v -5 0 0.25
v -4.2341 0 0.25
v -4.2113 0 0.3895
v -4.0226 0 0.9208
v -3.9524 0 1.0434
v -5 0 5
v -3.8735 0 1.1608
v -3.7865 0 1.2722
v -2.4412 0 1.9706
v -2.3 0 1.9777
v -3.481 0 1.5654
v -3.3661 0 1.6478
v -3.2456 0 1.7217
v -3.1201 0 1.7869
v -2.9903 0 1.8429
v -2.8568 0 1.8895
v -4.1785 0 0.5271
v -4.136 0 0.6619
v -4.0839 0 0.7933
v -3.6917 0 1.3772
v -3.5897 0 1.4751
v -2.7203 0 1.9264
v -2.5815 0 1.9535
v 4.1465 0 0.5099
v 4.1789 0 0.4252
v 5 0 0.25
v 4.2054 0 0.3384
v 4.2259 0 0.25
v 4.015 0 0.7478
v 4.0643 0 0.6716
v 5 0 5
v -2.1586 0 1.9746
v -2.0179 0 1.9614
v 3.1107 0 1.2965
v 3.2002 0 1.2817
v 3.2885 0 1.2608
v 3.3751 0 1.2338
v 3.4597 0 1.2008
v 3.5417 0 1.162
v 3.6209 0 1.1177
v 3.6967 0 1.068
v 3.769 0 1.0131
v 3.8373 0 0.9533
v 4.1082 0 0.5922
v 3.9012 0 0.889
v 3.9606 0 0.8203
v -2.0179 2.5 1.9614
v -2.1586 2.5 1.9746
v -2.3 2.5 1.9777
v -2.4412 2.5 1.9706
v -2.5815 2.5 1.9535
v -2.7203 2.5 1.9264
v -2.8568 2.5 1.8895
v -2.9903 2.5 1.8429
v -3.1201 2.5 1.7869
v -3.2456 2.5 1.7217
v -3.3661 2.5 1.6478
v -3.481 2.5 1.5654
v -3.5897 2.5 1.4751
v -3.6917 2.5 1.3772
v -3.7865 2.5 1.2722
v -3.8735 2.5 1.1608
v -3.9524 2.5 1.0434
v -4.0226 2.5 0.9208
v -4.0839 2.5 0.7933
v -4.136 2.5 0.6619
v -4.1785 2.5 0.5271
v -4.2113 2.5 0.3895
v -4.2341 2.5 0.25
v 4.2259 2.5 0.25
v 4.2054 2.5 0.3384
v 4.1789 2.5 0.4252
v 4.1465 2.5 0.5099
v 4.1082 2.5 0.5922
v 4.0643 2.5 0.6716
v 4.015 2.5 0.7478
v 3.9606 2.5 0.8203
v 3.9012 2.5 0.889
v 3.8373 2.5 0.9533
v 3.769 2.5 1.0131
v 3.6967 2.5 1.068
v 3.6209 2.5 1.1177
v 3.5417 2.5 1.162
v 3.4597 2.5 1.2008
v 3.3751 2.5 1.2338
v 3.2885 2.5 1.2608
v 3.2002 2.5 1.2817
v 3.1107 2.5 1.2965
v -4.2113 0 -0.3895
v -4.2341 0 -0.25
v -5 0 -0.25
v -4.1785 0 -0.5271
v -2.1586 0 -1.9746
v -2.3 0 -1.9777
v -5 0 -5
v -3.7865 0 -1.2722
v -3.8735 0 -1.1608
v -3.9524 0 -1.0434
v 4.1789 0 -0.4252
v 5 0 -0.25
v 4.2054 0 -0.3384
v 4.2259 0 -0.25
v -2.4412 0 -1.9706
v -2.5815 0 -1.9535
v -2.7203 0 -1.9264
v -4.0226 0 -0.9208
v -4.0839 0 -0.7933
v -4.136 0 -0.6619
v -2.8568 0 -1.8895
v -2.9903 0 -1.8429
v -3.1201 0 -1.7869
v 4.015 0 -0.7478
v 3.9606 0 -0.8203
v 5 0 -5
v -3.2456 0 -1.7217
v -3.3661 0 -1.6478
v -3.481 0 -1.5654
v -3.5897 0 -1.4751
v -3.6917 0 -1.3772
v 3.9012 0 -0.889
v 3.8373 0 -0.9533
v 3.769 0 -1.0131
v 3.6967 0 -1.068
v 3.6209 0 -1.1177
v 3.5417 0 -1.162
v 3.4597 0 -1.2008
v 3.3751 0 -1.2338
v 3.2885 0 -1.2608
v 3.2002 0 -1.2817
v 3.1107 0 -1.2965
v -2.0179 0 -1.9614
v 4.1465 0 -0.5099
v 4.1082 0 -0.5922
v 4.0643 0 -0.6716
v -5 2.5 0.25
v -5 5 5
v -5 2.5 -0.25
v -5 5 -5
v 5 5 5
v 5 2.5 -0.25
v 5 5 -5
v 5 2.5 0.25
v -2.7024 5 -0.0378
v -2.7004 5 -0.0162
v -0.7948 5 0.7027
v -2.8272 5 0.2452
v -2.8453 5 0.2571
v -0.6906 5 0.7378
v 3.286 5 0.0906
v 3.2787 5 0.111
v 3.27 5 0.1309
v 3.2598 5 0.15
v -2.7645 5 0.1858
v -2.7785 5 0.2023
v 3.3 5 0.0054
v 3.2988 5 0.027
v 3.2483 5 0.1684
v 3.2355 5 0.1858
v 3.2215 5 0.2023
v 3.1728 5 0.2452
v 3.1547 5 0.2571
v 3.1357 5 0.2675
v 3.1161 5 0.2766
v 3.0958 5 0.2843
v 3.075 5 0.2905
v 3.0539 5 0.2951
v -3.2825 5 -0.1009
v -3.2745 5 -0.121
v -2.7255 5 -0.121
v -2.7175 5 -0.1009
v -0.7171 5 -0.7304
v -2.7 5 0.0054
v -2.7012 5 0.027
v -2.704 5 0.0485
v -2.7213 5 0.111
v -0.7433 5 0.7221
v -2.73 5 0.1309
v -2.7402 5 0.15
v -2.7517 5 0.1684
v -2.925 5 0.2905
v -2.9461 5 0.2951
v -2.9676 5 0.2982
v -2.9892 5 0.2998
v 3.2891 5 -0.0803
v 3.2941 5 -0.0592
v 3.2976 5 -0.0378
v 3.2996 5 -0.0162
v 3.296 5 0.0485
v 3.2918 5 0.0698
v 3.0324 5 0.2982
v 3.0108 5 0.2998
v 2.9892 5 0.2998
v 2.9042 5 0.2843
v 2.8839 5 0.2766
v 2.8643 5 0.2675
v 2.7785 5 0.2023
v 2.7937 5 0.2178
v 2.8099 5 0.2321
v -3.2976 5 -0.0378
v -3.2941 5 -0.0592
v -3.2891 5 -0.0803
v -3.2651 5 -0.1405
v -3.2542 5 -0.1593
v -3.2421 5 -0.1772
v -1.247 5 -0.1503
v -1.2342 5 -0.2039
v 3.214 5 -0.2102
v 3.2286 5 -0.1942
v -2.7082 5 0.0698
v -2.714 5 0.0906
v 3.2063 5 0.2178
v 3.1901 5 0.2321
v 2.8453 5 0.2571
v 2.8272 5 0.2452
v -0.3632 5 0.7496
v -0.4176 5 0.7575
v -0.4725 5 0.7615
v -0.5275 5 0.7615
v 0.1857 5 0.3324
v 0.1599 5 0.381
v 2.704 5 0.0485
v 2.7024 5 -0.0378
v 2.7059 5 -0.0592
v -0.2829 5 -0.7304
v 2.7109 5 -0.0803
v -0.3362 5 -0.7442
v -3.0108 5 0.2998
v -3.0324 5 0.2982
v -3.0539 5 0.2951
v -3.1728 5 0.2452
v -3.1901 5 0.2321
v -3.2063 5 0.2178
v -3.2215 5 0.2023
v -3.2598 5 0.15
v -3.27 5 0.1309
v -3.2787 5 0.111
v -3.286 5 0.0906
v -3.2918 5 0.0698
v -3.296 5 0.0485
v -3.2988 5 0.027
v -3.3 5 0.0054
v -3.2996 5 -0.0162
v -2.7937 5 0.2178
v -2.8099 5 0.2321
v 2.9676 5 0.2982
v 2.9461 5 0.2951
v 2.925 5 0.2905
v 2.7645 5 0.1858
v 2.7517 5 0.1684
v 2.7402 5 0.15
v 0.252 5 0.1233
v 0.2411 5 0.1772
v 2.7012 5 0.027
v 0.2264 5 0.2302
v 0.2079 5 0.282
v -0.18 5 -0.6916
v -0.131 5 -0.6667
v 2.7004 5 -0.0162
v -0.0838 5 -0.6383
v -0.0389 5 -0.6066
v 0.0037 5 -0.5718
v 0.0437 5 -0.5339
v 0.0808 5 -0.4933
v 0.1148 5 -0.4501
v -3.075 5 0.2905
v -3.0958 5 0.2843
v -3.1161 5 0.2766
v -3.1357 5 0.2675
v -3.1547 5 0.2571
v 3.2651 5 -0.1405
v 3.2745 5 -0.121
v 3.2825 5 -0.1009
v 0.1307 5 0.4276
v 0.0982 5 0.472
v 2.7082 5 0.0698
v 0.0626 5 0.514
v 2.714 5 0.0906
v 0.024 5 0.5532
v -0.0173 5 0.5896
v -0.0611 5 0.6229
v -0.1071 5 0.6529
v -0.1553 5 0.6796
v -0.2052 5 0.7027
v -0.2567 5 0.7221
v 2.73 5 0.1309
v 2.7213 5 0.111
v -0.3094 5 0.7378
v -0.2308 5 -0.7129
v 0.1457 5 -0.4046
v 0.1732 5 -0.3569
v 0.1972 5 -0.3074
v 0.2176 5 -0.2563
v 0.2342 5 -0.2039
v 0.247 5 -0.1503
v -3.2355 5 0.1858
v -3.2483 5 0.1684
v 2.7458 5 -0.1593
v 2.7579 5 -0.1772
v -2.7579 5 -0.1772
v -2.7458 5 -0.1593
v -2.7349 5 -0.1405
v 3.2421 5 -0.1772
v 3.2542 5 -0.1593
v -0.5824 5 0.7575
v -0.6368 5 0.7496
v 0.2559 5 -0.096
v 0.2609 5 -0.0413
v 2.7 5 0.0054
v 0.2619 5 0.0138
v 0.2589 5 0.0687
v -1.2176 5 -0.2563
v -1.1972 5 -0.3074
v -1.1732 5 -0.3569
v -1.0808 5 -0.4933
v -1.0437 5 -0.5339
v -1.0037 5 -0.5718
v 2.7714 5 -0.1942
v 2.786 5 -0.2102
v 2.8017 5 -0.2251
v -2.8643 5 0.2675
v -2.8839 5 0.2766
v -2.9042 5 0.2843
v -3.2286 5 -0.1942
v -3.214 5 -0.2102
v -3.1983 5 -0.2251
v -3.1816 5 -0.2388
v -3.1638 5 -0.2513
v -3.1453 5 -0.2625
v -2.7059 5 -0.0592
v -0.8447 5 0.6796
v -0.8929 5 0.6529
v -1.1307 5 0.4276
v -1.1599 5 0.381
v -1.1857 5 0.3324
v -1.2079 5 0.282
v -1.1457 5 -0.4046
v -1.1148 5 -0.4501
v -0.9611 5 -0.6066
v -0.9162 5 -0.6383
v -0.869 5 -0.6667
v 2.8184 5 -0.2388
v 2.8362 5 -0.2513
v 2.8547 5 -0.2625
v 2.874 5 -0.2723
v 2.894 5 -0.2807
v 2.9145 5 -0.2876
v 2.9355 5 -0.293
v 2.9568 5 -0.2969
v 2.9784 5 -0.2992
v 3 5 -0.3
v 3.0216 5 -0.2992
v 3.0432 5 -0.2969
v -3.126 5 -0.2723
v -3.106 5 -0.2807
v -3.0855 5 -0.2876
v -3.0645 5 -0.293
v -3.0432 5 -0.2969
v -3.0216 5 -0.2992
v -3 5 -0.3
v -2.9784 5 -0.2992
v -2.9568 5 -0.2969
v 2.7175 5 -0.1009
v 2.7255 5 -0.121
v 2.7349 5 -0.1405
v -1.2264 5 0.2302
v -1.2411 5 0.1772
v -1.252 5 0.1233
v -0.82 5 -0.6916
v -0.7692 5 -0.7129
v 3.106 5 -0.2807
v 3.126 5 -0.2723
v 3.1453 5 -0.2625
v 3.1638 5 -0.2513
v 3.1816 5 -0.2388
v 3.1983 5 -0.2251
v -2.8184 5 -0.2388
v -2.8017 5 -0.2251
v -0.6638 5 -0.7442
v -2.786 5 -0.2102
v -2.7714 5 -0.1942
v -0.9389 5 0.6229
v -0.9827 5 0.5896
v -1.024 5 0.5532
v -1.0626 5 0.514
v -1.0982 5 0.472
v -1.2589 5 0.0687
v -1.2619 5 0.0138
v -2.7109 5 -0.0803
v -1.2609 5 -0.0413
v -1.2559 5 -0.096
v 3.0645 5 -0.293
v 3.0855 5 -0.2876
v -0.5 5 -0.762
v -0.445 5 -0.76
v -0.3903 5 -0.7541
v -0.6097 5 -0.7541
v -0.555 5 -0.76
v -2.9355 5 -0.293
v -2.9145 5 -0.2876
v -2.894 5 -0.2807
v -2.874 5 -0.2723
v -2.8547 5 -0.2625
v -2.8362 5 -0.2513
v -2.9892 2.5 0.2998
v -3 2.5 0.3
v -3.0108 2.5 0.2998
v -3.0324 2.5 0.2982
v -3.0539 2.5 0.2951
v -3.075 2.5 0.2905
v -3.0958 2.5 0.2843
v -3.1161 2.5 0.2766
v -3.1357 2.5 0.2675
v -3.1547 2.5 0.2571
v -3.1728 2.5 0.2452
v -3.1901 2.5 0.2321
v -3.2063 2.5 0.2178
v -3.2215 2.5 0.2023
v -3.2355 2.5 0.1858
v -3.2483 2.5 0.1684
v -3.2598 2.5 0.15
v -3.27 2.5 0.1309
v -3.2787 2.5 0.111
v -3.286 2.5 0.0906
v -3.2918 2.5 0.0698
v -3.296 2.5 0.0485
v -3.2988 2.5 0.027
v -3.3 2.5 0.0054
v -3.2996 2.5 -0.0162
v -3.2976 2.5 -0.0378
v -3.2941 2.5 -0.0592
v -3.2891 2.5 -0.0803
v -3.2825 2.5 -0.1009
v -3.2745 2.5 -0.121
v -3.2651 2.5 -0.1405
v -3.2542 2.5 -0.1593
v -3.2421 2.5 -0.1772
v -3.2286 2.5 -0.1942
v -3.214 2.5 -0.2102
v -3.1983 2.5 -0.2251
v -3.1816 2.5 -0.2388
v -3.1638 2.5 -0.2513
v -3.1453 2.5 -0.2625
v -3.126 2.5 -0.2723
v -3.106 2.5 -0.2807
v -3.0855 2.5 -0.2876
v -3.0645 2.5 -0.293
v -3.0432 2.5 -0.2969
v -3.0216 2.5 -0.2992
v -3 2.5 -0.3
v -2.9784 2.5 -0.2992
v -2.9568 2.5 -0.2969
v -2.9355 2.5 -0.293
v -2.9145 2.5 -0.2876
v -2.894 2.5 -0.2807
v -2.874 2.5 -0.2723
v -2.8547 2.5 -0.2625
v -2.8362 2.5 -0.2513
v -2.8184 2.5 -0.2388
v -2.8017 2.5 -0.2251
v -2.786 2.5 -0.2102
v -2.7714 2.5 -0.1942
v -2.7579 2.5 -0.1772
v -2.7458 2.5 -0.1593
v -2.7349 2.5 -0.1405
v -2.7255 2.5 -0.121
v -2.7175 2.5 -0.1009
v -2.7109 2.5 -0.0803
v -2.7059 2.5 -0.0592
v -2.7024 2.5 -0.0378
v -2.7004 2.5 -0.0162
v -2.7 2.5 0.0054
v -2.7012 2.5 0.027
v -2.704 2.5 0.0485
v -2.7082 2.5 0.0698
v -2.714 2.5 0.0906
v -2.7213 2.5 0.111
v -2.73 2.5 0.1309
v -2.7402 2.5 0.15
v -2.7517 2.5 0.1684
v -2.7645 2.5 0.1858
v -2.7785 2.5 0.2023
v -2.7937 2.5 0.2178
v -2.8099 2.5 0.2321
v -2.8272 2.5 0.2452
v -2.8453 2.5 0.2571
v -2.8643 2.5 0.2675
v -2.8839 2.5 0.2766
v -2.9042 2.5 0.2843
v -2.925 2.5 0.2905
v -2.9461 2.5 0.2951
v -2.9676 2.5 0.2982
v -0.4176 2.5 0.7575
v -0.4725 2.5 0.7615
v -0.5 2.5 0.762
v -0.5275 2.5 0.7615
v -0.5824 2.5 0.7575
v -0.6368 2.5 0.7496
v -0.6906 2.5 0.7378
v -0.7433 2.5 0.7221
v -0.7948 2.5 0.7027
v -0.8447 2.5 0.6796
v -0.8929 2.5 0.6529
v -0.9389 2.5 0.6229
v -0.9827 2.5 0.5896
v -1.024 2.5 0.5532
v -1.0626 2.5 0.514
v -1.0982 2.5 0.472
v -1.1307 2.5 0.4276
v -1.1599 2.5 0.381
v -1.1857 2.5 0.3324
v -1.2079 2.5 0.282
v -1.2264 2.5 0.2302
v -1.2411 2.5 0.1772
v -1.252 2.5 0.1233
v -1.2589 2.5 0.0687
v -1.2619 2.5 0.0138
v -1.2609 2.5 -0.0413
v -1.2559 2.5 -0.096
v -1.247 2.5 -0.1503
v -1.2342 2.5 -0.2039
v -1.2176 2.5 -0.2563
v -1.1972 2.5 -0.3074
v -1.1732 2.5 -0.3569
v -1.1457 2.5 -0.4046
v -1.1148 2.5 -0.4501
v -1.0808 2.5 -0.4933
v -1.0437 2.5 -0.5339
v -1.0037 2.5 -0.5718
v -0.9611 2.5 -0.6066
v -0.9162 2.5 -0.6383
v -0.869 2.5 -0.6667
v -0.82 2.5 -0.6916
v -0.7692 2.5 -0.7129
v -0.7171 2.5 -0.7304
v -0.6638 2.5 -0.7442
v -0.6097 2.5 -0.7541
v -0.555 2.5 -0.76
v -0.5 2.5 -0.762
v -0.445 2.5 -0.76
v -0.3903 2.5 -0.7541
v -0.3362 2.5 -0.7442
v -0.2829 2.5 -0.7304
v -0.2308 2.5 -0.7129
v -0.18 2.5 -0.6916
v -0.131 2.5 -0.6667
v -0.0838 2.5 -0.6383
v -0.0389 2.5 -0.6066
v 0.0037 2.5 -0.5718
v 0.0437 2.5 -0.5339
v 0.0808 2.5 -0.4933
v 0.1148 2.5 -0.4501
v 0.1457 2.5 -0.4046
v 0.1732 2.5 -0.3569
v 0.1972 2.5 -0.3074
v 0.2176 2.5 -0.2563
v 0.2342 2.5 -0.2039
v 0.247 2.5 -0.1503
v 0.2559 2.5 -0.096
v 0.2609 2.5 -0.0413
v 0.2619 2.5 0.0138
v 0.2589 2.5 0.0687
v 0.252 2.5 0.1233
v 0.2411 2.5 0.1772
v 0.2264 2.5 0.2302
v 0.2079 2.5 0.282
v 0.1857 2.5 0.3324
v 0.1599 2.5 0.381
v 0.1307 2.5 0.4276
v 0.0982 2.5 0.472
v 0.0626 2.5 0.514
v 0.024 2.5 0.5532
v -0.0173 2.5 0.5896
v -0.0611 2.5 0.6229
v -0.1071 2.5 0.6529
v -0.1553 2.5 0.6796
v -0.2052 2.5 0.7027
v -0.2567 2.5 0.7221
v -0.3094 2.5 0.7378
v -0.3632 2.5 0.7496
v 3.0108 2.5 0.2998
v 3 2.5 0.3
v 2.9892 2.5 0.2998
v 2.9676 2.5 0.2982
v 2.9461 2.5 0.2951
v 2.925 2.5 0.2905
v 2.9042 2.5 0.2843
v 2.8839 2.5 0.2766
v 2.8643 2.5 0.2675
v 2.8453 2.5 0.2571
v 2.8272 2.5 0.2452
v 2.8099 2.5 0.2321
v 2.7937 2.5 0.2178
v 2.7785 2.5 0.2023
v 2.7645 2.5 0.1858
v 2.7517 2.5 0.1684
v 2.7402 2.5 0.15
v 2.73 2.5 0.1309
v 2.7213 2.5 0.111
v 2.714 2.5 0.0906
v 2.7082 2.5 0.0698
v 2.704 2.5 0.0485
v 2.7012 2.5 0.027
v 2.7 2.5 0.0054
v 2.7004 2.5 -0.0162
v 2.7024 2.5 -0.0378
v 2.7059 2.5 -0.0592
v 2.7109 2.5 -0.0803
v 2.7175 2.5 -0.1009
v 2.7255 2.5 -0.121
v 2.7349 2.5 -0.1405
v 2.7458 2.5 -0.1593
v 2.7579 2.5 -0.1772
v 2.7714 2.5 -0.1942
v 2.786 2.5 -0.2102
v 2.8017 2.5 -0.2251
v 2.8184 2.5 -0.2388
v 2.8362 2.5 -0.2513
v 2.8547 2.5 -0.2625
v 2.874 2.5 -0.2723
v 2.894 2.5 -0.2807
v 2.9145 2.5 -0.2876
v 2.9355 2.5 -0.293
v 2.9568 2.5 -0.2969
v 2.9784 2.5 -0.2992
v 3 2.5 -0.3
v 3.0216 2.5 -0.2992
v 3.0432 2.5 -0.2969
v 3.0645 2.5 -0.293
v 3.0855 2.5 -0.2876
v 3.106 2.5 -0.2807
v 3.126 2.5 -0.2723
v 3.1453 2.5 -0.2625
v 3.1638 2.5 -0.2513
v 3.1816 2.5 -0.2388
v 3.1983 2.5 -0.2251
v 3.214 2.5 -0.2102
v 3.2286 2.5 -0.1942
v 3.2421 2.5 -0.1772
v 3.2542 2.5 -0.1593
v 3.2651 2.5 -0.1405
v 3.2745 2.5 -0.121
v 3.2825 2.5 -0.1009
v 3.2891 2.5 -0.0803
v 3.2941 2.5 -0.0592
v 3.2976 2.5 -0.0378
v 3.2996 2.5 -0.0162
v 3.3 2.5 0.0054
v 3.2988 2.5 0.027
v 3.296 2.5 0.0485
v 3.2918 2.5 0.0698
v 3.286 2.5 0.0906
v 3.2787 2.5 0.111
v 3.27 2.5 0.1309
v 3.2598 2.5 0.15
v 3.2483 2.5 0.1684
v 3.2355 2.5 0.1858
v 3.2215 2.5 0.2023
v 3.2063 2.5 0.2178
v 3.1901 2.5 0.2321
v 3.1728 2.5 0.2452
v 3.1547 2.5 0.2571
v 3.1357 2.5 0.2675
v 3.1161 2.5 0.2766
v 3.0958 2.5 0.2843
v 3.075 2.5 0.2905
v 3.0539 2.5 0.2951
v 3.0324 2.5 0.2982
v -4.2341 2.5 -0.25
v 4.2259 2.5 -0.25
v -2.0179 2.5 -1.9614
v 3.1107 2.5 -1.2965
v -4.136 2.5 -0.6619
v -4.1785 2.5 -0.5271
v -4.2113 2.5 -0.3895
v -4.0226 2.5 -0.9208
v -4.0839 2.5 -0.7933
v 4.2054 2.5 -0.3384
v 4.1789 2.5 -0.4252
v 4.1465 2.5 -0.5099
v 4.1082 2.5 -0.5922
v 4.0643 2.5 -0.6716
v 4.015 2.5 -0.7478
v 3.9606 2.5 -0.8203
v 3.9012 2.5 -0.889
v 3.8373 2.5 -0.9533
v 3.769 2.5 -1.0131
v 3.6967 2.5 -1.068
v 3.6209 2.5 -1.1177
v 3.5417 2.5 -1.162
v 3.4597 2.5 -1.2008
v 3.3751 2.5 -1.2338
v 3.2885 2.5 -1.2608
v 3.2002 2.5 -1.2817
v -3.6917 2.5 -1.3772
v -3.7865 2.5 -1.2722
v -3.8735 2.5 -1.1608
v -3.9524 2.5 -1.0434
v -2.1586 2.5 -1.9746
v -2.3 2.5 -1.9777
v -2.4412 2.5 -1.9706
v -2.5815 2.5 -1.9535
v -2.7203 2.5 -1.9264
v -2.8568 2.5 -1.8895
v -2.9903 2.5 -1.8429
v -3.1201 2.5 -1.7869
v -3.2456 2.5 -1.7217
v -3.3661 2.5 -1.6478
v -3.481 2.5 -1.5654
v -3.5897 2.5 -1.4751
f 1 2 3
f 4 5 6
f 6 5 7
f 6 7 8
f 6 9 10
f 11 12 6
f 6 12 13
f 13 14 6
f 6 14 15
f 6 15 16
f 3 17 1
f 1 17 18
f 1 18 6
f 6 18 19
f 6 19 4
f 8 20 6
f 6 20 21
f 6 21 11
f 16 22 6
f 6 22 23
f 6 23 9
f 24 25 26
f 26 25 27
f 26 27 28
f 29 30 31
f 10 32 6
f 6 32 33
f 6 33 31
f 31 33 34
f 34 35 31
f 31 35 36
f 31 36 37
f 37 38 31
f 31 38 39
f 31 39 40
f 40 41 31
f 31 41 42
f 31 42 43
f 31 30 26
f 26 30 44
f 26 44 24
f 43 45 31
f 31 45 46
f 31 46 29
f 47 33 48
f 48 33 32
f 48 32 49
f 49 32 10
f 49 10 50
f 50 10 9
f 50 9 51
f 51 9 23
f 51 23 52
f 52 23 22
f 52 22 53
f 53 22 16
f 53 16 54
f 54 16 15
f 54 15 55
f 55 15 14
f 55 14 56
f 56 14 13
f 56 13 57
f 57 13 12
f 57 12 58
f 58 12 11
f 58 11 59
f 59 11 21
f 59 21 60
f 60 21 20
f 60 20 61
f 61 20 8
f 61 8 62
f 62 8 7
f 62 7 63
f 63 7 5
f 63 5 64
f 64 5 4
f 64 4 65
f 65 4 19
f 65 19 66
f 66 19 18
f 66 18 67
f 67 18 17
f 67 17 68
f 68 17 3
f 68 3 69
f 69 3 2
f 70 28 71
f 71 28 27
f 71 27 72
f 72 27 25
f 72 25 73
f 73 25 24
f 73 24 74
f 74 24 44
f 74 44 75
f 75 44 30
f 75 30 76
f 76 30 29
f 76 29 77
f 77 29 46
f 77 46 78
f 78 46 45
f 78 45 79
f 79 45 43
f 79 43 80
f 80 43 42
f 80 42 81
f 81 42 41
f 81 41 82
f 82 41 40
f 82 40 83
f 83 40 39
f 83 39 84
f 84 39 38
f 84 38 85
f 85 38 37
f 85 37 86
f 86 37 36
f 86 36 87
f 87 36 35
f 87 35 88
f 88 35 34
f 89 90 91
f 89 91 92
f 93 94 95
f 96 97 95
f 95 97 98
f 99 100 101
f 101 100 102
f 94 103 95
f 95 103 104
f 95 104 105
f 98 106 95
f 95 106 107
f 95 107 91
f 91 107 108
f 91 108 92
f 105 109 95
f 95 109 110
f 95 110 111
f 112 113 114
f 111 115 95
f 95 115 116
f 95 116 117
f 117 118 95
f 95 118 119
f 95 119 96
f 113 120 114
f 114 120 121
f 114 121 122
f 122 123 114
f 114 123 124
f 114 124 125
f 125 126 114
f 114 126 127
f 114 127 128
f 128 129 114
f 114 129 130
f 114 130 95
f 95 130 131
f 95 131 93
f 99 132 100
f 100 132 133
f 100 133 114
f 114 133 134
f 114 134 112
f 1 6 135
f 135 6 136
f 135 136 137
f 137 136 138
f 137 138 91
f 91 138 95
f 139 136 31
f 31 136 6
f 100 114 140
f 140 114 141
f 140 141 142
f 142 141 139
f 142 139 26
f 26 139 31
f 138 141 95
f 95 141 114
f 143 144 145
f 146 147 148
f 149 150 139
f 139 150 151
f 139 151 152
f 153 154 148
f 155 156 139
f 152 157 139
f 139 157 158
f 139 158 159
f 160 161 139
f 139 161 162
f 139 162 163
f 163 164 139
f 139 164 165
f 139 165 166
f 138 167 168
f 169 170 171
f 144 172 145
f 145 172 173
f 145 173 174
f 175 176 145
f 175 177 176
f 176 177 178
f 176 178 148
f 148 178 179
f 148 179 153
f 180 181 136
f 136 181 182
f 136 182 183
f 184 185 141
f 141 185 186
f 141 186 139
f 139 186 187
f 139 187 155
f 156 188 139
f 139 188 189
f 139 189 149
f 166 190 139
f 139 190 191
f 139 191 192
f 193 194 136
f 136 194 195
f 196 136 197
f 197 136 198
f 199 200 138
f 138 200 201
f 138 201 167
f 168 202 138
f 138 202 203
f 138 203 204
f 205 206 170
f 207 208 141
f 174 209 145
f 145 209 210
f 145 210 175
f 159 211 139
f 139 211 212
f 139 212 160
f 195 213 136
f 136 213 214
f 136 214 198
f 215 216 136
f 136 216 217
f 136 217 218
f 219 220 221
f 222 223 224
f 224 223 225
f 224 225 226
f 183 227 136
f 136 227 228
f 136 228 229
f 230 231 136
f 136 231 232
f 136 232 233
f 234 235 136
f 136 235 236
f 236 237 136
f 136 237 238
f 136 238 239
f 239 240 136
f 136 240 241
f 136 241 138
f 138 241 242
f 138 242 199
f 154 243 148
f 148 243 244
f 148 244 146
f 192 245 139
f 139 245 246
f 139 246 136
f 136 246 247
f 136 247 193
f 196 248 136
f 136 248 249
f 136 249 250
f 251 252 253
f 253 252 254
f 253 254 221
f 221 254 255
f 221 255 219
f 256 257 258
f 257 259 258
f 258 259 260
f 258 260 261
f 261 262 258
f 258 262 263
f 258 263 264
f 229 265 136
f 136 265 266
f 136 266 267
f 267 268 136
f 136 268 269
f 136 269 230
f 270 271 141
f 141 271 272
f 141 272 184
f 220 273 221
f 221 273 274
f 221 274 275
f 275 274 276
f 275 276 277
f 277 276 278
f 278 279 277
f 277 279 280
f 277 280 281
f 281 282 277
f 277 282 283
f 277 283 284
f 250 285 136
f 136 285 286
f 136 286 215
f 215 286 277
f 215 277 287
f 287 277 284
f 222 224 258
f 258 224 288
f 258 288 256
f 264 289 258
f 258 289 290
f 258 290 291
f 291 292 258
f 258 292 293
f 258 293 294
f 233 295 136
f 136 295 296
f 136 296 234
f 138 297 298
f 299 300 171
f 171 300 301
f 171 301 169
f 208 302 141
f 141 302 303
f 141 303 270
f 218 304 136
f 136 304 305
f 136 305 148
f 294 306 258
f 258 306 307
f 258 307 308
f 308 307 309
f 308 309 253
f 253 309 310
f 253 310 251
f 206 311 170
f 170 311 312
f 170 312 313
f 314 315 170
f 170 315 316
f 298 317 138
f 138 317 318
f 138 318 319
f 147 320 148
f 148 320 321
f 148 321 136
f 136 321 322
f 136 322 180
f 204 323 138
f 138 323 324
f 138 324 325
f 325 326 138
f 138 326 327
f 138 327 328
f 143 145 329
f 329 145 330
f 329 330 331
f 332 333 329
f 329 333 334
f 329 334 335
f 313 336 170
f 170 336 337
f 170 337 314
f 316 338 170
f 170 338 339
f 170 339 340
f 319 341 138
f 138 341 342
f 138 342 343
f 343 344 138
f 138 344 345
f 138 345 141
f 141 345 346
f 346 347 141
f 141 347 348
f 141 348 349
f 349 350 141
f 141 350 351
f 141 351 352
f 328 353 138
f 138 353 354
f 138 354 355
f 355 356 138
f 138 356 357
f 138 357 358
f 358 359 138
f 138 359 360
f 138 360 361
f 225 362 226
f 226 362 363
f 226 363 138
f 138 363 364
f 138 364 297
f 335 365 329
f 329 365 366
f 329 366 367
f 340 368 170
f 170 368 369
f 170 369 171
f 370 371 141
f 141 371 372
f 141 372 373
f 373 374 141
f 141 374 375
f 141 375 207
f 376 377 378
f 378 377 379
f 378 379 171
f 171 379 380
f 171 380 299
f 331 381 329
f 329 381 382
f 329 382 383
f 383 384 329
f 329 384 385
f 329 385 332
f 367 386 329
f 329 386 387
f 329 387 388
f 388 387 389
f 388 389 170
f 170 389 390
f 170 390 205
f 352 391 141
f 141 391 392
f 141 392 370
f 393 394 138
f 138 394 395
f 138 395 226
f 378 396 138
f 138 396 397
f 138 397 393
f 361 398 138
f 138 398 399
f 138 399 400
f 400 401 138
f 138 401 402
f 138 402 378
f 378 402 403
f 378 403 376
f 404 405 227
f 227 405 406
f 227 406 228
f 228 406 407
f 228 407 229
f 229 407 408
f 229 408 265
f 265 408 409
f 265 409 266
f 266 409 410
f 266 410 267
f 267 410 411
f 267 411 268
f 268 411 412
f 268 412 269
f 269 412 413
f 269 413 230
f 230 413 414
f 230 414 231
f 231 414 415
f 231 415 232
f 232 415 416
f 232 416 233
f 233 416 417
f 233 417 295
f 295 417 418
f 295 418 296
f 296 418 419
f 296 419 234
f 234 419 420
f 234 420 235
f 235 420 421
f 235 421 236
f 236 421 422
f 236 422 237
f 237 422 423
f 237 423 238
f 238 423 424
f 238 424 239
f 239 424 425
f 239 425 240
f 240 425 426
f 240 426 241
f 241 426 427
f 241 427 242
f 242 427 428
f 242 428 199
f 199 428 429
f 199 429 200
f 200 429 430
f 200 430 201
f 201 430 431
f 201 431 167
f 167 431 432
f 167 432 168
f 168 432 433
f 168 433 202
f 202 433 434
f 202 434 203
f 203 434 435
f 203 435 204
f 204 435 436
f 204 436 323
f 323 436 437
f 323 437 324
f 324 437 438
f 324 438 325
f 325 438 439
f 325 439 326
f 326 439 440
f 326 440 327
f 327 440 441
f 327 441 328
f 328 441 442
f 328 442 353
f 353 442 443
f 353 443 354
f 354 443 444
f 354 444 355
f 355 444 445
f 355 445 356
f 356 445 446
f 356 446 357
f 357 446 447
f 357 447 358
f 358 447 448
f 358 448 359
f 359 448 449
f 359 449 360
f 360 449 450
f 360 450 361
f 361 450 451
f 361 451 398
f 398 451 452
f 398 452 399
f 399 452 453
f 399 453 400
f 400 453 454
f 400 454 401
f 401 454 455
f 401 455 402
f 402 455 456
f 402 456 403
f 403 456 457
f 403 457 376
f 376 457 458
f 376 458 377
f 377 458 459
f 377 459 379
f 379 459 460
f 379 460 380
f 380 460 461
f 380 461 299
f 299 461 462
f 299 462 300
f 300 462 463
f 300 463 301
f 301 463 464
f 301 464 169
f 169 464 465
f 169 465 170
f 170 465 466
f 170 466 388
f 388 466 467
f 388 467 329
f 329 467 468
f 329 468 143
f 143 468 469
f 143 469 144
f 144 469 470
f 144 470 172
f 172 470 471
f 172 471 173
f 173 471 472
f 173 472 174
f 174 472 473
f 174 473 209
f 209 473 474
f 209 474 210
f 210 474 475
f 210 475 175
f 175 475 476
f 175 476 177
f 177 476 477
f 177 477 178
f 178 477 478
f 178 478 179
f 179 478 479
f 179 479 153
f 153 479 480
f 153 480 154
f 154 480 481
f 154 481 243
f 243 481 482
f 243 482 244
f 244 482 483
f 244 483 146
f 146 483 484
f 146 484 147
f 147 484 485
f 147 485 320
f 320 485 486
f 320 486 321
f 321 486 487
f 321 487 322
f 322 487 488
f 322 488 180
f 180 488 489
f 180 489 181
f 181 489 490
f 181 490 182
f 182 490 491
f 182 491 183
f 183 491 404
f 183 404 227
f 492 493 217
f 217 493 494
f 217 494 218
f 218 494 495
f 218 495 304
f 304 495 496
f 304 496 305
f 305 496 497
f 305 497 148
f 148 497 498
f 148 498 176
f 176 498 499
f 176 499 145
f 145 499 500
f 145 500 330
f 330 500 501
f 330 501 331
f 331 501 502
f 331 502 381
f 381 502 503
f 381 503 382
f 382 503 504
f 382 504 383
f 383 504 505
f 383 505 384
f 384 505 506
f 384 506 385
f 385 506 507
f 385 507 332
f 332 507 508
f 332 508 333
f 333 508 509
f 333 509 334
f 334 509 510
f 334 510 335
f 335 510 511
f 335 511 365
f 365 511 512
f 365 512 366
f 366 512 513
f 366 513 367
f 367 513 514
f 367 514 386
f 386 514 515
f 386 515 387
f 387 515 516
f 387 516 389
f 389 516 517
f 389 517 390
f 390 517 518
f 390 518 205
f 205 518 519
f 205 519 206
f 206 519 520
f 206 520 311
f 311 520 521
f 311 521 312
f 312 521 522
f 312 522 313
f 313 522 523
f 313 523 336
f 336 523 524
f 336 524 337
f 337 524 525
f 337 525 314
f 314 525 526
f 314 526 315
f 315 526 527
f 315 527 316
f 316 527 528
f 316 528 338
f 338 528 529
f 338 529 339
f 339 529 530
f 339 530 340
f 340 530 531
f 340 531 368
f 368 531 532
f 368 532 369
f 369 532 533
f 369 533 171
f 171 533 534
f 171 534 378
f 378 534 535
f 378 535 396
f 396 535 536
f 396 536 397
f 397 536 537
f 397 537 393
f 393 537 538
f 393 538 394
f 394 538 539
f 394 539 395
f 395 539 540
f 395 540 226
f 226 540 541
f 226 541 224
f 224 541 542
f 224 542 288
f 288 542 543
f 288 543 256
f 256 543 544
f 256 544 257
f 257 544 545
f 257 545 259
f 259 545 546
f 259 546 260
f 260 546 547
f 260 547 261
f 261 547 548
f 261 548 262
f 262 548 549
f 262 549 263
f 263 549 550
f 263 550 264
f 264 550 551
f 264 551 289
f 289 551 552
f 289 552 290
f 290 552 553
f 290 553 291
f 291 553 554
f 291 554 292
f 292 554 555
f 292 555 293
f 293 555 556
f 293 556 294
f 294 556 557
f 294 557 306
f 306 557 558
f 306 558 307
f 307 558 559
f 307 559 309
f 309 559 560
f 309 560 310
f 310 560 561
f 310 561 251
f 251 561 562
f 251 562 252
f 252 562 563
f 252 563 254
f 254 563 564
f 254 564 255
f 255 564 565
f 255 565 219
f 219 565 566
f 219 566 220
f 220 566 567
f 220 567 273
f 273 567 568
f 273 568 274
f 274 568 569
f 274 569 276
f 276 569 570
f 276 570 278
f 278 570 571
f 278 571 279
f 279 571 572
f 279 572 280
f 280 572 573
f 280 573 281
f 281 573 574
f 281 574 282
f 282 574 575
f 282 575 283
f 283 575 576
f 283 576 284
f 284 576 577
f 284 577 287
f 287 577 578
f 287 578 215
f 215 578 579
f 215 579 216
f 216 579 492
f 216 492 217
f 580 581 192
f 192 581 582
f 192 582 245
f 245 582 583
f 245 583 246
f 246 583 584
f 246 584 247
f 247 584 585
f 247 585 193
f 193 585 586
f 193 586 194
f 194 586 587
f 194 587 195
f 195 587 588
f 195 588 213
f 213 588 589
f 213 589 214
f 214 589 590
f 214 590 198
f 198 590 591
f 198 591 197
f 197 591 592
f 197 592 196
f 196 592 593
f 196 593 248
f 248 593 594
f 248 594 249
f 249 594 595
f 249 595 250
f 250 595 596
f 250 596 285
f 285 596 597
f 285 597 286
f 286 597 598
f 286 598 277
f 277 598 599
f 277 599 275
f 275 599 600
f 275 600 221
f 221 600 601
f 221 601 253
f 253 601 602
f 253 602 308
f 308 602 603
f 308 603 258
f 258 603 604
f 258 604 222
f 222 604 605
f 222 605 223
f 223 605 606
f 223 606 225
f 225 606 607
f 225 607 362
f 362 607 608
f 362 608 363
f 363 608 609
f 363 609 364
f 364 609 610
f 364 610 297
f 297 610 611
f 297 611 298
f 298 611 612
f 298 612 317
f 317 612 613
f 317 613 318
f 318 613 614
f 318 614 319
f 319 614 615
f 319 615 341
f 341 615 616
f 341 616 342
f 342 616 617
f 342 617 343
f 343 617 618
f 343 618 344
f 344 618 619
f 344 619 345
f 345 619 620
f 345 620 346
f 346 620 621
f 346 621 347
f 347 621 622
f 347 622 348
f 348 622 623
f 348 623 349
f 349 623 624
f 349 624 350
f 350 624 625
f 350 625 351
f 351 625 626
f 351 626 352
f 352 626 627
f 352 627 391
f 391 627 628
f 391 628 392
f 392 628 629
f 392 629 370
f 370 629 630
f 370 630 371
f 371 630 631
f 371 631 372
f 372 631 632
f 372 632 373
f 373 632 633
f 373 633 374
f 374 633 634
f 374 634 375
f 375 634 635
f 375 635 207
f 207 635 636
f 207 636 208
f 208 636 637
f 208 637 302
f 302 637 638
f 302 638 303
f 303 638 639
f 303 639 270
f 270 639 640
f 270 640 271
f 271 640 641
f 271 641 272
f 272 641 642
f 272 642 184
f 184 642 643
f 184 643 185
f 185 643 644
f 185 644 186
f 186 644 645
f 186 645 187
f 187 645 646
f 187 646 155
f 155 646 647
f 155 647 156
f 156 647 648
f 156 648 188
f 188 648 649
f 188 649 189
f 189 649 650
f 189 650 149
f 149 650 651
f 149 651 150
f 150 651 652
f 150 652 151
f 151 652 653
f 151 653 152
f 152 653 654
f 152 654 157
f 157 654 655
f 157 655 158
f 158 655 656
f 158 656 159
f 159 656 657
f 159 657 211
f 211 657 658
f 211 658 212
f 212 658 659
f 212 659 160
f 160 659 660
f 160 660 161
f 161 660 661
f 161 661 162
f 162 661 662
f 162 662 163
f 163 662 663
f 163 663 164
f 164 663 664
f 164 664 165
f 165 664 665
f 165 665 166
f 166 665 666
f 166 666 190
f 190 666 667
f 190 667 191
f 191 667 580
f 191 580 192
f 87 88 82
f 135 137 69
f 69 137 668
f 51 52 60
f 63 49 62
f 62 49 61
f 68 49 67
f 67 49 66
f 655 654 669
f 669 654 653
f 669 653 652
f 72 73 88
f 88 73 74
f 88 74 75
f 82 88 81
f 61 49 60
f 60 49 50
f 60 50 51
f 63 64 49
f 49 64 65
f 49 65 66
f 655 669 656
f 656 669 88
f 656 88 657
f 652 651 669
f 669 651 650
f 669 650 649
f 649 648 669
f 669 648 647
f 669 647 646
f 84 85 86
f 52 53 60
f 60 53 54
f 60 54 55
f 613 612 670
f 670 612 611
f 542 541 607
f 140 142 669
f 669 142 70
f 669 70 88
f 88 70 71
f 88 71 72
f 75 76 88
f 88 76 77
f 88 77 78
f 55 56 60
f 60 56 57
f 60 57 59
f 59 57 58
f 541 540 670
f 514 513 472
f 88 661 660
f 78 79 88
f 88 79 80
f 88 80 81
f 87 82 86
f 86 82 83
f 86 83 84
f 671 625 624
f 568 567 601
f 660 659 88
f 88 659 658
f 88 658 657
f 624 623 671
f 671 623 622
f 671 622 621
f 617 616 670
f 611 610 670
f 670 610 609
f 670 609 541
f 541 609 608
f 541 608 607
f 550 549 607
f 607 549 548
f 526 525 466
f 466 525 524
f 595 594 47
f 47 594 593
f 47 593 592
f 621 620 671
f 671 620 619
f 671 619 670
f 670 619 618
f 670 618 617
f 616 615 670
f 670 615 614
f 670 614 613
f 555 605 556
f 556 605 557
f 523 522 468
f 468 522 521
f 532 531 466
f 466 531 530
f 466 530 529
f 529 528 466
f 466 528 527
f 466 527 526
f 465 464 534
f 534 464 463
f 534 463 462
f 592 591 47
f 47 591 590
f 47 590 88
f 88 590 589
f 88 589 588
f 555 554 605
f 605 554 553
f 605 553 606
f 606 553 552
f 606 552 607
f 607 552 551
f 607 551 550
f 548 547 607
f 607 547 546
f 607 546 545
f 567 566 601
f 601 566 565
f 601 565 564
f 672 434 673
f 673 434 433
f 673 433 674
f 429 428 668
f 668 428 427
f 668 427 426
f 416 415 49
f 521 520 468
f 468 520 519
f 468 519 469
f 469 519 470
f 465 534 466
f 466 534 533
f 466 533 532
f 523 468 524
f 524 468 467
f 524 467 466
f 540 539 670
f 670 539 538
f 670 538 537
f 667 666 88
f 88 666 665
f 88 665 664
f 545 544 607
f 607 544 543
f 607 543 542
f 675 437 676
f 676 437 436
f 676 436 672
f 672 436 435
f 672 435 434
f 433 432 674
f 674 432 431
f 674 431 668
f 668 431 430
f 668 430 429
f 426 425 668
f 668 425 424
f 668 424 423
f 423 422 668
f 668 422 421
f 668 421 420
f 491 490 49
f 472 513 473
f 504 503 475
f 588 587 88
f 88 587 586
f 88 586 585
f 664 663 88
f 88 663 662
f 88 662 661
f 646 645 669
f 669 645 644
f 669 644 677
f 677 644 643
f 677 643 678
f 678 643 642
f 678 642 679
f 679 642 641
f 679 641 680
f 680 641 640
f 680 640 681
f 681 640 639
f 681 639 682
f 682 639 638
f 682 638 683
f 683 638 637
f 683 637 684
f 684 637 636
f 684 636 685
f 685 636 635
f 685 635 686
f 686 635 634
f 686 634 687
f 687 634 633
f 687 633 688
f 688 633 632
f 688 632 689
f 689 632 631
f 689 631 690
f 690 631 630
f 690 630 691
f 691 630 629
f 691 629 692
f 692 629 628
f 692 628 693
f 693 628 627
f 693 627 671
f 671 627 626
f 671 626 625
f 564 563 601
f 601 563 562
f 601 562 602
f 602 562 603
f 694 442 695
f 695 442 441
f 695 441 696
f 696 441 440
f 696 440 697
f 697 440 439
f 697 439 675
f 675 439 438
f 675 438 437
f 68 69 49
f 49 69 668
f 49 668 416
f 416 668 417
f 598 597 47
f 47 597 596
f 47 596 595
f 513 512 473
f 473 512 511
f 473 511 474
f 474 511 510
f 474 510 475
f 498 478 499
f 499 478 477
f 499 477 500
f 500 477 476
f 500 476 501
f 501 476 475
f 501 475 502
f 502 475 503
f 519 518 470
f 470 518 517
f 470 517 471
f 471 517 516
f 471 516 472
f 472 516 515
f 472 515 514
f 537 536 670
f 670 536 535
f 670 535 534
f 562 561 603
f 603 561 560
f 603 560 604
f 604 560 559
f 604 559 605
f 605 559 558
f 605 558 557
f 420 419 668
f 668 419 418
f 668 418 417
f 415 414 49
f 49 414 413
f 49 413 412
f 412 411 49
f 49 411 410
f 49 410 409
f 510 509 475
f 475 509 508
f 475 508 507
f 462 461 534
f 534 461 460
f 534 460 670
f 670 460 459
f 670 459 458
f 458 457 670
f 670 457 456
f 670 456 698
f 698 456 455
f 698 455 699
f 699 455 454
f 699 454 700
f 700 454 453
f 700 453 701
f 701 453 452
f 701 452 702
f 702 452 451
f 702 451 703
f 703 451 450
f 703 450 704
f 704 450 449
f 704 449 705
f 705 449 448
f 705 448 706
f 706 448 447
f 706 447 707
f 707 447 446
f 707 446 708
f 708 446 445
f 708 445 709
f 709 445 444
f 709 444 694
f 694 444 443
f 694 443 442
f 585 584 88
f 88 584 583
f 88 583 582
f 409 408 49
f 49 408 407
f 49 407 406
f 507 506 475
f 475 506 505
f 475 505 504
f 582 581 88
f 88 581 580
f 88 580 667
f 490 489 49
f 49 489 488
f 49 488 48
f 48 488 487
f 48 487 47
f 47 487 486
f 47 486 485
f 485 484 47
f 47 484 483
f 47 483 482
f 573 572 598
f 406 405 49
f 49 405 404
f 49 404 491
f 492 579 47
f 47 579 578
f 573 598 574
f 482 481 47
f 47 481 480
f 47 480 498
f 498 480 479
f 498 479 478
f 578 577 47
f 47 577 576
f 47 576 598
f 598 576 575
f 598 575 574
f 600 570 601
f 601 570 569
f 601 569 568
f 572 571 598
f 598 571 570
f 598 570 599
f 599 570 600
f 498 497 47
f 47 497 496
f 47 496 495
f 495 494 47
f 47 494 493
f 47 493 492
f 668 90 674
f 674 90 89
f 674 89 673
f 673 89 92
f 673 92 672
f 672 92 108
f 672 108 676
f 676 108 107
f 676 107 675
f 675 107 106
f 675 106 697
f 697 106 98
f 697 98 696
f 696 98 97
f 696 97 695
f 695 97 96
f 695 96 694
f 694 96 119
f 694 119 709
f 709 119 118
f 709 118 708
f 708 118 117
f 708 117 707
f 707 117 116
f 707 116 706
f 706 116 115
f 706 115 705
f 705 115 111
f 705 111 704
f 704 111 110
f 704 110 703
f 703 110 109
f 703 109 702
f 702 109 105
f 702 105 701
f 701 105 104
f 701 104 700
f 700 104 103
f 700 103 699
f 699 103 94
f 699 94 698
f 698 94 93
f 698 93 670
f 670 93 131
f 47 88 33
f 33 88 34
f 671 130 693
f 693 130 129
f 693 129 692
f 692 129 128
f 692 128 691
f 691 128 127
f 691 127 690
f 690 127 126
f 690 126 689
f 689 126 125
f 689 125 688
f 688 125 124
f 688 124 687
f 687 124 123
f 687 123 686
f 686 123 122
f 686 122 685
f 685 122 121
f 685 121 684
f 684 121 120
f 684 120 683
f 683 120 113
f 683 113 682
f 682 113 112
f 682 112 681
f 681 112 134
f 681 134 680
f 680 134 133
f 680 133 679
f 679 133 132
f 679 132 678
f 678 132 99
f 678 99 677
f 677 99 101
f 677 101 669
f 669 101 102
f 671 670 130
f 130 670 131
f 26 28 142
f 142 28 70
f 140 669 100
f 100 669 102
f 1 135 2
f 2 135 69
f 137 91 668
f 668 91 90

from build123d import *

# Parameters (mm, degrees)
BASEWITH_ALIGNMENT_W = 10
BASEWITH_ALIGNMENT_H = 10
BOSS_EXTRUDE1_DEPTH  = 5
SKETCH1_R            = 0.762
SKETCH1_R_2          = 0.3
CUT_EXTRUDE6_DEPTH   = 9.660254038
CUT_EXTRUDE7_DEPTH   = 2.5
SKETCH2_W            = 10
SKETCH2_H            = 0.5
CUT_EXTRUDE8_DEPTH   = 2.5


with BuildPart() as part:
    # BaseWith Alignment → Boss-Extrude1 (new body)
    with BuildSketch(Plane(origin=(0, 0, 0), x_dir=(1, 0, 0), z_dir=(0, 1, 0))):
        Rectangle(BASEWITH_ALIGNMENT_W, BASEWITH_ALIGNMENT_H)
    extrude(amount=BOSS_EXTRUDE1_DEPTH)

    # Sketch1 → Cut-Extrude6 (cut, through all)
    with BuildSketch(Plane(origin=(0, 0, 0), x_dir=(-1, 0, 0), z_dir=(0, -1, 0))):
        with Locations(Location((0.5, 0, 0), (0, 0, 90))):
            Circle(SKETCH1_R)
        with Locations(Location((3, 0, 0), (0, 0, 90))):
            Circle(SKETCH1_R_2)
        with Locations(Location((-3, 0, 0), (0, 0, 90))):
            Circle(SKETCH1_R_2)
    extrude(amount=-CUT_EXTRUDE6_DEPTH, mode=Mode.SUBTRACT)

    # Sketch1<3> → Cut-Extrude7 (cut)
    with BuildSketch(Plane(origin=(0, 0, 0), x_dir=(-1, 0, 0), z_dir=(0, -1, 0))):
        with BuildLine():
            Line((2.017857143, -1.961432458), (-3.110714286, -1.296526148))
            ThreePointArc((-3.110714286, -1.296526148), (-4.25, 0), (-3.110714286, 1.296526148))
            Line((-3.110714286, 1.296526148), (2.017857143, 1.961432458))
            ThreePointArc((2.017857143, 1.961432458), (4.25, 0), (2.017857143, -1.961432458))
        make_face()
    extrude(amount=-CUT_EXTRUDE7_DEPTH, mode=Mode.SUBTRACT)

    # Sketch2 → Cut-Extrude8 (cut)
    with BuildSketch(Plane.XZ):
        Rectangle(SKETCH2_W, SKETCH2_H)
    extrude(amount=-CUT_EXTRUDE8_DEPTH, mode=Mode.SUBTRACT)


solid = part.part
